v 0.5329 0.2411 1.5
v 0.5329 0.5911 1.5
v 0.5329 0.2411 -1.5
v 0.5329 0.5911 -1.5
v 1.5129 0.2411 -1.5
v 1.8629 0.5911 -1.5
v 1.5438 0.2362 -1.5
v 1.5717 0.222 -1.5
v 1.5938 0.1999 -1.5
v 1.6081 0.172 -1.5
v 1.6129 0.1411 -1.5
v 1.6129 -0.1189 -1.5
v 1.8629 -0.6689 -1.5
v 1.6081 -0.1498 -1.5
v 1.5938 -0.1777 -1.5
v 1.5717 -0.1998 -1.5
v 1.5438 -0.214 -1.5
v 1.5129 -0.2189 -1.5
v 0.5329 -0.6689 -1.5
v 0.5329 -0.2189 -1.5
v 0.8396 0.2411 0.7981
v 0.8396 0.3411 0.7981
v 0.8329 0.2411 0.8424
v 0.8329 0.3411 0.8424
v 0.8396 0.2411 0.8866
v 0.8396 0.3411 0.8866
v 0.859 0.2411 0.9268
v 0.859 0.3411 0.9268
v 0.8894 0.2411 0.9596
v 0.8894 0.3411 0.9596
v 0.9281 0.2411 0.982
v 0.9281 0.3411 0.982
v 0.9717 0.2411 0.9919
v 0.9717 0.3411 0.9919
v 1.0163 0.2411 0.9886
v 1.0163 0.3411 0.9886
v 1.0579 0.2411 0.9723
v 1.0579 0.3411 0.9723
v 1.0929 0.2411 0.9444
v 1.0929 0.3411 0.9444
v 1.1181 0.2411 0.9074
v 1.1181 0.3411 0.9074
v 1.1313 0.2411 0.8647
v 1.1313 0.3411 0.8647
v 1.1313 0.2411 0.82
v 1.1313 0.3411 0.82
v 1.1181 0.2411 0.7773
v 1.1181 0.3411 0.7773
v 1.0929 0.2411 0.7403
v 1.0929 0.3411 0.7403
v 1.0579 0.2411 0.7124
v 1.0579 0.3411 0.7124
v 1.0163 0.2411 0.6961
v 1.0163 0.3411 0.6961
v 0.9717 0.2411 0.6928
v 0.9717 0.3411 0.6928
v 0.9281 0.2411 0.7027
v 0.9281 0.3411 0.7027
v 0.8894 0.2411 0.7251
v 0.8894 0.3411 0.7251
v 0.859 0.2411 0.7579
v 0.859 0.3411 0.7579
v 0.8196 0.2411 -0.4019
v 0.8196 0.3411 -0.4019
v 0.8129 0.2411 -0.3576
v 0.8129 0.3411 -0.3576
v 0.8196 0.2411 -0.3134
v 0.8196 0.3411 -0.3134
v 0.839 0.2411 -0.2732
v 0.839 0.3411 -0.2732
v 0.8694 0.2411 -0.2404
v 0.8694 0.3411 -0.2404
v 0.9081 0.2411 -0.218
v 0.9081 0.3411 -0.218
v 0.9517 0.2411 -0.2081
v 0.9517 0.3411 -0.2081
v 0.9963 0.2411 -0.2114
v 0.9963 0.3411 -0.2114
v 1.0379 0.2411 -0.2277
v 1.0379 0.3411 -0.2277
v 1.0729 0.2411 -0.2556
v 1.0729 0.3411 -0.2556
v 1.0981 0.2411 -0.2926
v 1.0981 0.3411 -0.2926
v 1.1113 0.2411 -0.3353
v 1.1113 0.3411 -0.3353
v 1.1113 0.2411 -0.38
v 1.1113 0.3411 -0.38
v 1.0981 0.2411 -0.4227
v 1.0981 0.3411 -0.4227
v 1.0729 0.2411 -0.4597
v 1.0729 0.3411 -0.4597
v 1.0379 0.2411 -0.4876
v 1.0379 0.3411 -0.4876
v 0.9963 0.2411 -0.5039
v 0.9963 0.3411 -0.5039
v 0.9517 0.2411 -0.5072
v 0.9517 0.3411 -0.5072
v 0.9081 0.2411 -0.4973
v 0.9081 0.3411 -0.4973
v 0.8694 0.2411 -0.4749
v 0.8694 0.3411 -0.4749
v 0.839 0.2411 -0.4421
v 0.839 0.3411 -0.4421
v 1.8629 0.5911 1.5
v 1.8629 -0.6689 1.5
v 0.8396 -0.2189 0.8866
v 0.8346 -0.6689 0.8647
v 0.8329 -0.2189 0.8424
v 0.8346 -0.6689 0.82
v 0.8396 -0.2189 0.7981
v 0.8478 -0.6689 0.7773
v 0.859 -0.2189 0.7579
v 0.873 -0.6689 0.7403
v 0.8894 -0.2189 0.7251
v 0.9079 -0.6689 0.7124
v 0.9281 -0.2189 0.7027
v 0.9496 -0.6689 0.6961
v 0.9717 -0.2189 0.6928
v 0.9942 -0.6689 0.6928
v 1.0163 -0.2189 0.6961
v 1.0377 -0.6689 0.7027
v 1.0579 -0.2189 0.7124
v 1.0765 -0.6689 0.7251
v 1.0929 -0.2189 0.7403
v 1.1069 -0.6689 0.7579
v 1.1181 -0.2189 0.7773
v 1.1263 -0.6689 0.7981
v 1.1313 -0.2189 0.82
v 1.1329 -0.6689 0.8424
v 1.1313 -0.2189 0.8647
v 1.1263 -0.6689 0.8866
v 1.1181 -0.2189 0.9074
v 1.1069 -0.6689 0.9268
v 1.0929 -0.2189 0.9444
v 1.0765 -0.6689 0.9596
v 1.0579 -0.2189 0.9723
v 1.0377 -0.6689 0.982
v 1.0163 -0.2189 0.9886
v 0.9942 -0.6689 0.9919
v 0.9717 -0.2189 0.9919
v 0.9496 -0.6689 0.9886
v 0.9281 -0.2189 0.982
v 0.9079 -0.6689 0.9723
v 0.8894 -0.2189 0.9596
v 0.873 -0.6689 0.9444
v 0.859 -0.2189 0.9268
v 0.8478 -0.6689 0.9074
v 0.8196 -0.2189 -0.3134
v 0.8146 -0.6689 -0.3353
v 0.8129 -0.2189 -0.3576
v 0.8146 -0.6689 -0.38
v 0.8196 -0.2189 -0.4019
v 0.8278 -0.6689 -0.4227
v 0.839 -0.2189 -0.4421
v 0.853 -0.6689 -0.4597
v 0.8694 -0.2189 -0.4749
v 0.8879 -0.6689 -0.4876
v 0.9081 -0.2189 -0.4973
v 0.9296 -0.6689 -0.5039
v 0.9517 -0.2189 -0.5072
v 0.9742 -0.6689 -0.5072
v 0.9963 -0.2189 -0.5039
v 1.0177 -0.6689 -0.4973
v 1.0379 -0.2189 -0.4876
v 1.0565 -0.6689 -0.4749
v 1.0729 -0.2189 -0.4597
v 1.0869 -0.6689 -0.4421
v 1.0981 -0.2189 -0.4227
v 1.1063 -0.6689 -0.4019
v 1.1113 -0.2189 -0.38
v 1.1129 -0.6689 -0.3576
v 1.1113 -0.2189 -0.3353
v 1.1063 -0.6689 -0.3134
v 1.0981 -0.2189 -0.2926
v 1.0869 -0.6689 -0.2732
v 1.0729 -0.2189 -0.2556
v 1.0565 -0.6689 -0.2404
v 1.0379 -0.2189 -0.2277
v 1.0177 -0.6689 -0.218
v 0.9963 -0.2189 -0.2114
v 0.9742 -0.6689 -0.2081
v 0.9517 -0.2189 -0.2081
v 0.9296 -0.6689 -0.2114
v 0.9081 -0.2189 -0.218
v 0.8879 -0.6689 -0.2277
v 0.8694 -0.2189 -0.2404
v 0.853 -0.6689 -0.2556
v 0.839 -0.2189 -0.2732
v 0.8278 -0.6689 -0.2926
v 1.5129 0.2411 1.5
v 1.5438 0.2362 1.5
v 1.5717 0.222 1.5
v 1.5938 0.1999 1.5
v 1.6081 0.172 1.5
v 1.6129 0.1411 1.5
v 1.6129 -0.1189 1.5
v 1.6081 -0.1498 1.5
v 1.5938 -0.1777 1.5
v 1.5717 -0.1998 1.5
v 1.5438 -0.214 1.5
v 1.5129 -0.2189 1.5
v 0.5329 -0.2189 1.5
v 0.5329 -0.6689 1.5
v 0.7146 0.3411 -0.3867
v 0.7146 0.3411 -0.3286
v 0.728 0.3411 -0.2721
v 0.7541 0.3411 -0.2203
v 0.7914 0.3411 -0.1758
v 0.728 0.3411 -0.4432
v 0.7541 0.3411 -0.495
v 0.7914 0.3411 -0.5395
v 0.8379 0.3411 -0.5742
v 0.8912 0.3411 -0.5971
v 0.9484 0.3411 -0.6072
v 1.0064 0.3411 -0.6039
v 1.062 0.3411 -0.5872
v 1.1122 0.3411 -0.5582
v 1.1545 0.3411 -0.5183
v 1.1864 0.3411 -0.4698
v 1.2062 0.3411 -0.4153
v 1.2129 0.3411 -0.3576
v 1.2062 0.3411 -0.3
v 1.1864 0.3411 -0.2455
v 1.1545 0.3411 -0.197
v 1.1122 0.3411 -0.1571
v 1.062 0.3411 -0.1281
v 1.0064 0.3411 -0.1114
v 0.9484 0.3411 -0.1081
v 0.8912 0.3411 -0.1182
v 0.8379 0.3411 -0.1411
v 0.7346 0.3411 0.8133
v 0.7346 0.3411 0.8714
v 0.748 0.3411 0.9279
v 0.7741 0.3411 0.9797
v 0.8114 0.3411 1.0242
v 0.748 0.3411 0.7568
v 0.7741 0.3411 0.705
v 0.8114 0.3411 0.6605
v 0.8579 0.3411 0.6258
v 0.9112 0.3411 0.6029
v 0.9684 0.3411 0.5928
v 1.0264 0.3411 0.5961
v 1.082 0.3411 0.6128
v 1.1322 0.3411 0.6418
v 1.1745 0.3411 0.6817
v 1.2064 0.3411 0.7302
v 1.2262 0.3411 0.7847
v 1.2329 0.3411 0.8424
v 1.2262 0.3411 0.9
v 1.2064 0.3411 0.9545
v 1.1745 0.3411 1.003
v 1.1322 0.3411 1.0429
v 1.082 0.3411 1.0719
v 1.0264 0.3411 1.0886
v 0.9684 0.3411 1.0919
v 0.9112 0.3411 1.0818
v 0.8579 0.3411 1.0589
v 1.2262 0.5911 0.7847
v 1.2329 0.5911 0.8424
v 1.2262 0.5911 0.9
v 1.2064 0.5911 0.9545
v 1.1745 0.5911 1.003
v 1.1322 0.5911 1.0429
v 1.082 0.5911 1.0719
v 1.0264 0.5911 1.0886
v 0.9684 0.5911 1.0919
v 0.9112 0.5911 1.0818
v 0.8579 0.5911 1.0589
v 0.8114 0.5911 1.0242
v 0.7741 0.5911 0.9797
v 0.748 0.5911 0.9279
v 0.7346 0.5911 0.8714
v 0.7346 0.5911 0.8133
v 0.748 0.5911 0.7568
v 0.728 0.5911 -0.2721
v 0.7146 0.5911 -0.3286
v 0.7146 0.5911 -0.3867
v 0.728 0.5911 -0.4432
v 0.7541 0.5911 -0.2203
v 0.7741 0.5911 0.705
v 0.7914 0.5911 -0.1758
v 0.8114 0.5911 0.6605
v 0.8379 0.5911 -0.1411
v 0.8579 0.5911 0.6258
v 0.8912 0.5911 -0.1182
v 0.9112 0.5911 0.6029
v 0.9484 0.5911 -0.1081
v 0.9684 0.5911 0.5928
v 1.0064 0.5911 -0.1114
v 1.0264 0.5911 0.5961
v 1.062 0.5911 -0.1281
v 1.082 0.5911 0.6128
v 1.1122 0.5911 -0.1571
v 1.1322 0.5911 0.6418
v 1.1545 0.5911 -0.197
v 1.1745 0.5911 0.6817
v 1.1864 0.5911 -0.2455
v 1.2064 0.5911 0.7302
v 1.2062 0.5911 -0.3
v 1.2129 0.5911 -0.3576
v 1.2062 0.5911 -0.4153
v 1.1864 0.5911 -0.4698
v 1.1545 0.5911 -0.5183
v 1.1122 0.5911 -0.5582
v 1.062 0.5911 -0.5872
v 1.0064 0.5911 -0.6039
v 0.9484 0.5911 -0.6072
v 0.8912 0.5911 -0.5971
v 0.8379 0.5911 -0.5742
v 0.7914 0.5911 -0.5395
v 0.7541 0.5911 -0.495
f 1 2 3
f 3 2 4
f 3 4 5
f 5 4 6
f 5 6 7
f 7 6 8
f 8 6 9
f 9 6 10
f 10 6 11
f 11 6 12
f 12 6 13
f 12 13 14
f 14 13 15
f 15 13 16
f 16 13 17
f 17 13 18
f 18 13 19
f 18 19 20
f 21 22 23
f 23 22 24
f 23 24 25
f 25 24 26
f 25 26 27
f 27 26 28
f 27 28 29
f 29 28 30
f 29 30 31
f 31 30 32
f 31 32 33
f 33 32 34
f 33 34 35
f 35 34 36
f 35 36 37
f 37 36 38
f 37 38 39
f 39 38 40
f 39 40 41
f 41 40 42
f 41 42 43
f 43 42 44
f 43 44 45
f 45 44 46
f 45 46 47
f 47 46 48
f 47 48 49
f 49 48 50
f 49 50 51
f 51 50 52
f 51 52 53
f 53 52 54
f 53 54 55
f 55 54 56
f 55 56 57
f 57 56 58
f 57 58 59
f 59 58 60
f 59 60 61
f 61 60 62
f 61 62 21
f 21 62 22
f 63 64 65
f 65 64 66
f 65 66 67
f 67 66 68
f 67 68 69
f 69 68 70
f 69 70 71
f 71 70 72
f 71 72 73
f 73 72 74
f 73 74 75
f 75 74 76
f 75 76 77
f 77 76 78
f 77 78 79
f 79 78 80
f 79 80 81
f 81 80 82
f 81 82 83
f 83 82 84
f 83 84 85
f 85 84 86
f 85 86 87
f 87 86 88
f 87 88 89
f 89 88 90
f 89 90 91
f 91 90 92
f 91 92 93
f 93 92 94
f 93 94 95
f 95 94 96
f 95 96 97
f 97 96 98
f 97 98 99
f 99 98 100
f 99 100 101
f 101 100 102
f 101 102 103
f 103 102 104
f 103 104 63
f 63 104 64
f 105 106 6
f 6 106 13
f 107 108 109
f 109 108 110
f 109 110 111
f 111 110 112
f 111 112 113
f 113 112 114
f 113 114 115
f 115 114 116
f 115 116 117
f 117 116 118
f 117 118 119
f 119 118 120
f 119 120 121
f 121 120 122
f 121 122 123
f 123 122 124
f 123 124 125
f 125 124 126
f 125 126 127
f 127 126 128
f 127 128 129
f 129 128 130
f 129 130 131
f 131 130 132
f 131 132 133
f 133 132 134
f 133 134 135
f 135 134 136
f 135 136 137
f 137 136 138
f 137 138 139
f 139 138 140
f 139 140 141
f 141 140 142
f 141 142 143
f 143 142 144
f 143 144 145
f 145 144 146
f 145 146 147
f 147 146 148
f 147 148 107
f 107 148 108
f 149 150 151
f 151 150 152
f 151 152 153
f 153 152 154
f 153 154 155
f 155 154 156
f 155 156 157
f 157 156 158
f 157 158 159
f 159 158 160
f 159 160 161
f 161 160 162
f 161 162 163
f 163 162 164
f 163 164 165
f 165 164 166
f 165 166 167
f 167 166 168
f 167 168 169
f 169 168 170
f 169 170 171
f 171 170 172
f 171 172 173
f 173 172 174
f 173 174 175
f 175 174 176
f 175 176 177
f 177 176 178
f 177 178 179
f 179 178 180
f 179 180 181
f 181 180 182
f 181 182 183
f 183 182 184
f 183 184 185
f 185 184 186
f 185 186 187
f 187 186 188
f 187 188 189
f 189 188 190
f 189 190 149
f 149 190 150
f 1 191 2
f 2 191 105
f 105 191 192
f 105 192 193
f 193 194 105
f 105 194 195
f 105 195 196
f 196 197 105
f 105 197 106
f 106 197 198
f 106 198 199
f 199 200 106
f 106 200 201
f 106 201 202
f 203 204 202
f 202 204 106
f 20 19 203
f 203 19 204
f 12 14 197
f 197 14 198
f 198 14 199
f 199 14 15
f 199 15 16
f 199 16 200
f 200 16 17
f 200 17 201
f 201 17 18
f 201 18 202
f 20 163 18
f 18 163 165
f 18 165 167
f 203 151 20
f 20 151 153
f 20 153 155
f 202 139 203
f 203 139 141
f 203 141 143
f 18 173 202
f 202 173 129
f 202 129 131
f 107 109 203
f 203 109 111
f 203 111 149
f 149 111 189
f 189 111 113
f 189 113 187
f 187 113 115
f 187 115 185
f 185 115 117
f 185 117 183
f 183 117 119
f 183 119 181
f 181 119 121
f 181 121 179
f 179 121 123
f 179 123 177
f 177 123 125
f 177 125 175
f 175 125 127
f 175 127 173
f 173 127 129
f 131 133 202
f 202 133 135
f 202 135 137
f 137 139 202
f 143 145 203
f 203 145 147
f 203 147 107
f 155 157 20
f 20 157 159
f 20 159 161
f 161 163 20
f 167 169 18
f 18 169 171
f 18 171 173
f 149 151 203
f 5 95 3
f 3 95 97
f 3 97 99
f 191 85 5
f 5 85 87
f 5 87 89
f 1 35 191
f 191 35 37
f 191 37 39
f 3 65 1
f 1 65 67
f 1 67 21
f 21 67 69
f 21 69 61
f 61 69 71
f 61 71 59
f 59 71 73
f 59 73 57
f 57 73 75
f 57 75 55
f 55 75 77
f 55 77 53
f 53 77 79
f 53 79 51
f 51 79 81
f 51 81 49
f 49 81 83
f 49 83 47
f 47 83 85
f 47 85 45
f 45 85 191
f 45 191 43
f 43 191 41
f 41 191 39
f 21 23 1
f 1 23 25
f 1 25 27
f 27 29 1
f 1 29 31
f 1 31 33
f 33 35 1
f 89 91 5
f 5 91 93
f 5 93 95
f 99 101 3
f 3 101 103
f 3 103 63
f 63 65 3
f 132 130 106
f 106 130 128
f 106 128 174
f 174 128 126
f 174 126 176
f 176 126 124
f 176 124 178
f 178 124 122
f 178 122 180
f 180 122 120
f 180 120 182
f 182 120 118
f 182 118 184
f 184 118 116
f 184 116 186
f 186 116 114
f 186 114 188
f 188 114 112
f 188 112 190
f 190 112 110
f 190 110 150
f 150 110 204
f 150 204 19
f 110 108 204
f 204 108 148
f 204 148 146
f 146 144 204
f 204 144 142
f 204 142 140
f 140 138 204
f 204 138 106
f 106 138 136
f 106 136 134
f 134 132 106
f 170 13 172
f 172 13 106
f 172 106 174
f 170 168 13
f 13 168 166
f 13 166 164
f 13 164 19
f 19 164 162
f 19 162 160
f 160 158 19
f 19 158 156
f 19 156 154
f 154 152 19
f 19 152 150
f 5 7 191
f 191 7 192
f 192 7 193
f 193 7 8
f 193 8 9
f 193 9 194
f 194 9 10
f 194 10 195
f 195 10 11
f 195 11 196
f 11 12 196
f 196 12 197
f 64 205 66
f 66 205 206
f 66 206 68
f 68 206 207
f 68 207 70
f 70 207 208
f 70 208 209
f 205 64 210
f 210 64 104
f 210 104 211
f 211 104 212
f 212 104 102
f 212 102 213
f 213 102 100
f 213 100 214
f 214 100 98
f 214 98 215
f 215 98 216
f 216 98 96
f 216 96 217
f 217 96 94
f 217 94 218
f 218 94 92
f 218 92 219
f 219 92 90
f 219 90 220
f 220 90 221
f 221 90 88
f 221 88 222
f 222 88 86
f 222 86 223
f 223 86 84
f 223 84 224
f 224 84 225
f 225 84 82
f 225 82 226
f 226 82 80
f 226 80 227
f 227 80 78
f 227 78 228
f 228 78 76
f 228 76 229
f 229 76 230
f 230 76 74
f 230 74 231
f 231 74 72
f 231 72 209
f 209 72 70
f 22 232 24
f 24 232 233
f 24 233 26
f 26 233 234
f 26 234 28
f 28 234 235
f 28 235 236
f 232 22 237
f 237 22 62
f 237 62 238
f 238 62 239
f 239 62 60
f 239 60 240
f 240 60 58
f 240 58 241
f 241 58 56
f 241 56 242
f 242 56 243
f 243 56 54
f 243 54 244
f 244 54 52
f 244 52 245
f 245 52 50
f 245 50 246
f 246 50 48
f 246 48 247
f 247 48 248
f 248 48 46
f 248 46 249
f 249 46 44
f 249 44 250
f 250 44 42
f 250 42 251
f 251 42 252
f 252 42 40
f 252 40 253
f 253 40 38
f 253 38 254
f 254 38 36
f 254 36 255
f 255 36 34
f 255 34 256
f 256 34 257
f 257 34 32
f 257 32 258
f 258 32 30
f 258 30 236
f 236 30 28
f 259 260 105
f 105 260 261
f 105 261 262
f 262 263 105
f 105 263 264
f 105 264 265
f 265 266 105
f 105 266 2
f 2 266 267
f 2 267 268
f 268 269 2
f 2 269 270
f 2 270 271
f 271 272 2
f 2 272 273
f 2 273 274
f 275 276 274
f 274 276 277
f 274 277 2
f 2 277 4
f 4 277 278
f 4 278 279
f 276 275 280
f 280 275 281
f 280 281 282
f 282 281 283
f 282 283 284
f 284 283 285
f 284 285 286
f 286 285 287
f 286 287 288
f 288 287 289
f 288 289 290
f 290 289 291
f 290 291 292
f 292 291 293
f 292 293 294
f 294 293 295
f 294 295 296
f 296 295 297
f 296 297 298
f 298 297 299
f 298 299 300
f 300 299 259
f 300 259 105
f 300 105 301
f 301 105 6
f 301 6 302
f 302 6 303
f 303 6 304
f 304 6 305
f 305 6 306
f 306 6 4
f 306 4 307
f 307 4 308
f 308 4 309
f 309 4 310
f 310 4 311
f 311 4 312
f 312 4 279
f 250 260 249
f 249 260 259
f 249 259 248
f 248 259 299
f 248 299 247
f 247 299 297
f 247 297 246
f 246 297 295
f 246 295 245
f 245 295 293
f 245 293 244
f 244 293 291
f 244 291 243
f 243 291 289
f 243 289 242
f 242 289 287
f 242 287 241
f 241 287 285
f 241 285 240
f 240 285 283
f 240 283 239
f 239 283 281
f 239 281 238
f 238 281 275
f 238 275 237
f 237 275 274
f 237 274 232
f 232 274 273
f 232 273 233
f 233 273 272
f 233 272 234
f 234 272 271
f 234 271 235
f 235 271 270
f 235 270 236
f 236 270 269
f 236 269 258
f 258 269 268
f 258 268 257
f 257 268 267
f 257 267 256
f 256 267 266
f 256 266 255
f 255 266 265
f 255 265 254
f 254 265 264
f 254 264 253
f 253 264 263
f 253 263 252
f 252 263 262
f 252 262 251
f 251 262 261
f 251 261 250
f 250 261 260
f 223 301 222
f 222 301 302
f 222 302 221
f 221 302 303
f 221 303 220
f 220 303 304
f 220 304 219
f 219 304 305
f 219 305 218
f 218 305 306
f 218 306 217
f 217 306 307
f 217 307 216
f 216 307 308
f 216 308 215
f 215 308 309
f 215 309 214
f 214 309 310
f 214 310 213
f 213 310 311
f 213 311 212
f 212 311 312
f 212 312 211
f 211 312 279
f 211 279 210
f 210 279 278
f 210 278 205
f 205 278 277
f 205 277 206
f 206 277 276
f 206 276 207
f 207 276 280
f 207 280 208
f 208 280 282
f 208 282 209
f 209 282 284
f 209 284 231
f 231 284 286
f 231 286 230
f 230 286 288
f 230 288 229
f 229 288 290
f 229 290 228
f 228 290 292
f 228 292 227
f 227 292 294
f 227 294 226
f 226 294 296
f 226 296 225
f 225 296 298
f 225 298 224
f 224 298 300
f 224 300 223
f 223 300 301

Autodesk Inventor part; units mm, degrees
ref_plane "YZ Plane" through (0, 0, 0) normal (1, 0, 0) x (0, 1, 0)
ref_plane "XZ Plane" through (0, 0, 0) normal (0, 1, 0) x (-1, 0, 0)
sketch "Skizze1" plane through (1.1129, -0.6689, -0.3576) normal (0, -1, 0) x (1, 0, 0)
  line L0 (0.75, -1.1424) -> (0.75, 1.8576) projected
  line L1 (0.75, 1.8576) -> (-0.58, 1.8576) projected
  line L2 (-0.58, 1.8576) -> (-0.58, -1.1424) projected
  line L3 (-0.58, -1.1424) -> (0.75, -1.1424) projected
  line L4 (0.75, 1.8576) -> (-0.58, 1.8576)
  line L5 (-0.58, 1.8576) -> (-0.58, -1.1424)
  line L6 (-0.58, -1.1424) -> (0.75, -1.1424)
  line L7 (0.75, -1.1424) -> (0.75, 1.8576)
  circle A0 centre (-0.15, 0) radius 0.25 projected
  circle A1 centre (-0.15, 0) radius 0.15 projected
  circle A2 centre (-0.13, 1.2) radius 0.15 projected
  circle A3 centre (-0.13, 1.2) radius 0.25 projected
  point P0 (-1.1129, 0.3576)
sketch "Skizze2" plane through (0.5329, 0.5911, 1.5) normal (0, 0, 1) x (1, 0, 0)
  line L0 (0, -0.35) -> (1.0109, -0.35) projected
  circle A0 centre (0.98, -0.45) radius 0.1 projected
  line L1 (1.08, -0.4191) -> (1.08, -0.7409) projected
  circle A1 centre (0.98, -0.71) radius 0.1 projected
  line L2 (1.0109, -0.81) -> (0, -0.81) projected
  line L3 (1.33, -1.26) -> (1.33, 0) projected
  line L4 (1.33, 0) -> (0, 0) projected
  line L5 (1.33, -1.26) -> (0, -1.26) projected
  line L6 (0, -0.81) -> (0, -1.26) projected
  line L7 (0, 0) -> (0, -0.35) projected
  point P0 (-0.5329, -0.5911)
  point P1 (0.9799, -0.35)
  point P2 (1.08, -0.4499)
  point P3 (1.08, -0.7099)
  point P4 (0.9799, -0.81)
ref_plane "Arbeitsebene2" through (1.6129, -0.1189, -1.5) normal (0, 0, -1) x (-1, 0, 0)
extrude "Extrusion1" add sketch "Skizze2" against normal up to surface (3 mm away) contours L7 L4 L3 L5 L6 L2 A1 L1 A0 L0
extrude "Extrusion2" cut sketch "Skizze1" against normal blind 10 contours A1 | A2
sketch "Skizze3" plane through (0.5329, 0.5911, 1.5) normal (0, 1, 0) x (1, 0, 0)
  circle A0 centre (0.43, 1.8576) radius 0.15 projected
  circle A1 centre (0.45, 0.6577) radius 0.15 projected
  circle A2 centre (0.43, 1.8576) radius 0.2498
  circle A3 centre (0.45, 0.6577) radius 0.25
  point P0 (-0.5329, 1.5)
  dimension "d6" = 0.5
extrude "Extrusion3" cut sketch "Skizze3" against normal blind 0.25
properties part number "GlassesInterface"
